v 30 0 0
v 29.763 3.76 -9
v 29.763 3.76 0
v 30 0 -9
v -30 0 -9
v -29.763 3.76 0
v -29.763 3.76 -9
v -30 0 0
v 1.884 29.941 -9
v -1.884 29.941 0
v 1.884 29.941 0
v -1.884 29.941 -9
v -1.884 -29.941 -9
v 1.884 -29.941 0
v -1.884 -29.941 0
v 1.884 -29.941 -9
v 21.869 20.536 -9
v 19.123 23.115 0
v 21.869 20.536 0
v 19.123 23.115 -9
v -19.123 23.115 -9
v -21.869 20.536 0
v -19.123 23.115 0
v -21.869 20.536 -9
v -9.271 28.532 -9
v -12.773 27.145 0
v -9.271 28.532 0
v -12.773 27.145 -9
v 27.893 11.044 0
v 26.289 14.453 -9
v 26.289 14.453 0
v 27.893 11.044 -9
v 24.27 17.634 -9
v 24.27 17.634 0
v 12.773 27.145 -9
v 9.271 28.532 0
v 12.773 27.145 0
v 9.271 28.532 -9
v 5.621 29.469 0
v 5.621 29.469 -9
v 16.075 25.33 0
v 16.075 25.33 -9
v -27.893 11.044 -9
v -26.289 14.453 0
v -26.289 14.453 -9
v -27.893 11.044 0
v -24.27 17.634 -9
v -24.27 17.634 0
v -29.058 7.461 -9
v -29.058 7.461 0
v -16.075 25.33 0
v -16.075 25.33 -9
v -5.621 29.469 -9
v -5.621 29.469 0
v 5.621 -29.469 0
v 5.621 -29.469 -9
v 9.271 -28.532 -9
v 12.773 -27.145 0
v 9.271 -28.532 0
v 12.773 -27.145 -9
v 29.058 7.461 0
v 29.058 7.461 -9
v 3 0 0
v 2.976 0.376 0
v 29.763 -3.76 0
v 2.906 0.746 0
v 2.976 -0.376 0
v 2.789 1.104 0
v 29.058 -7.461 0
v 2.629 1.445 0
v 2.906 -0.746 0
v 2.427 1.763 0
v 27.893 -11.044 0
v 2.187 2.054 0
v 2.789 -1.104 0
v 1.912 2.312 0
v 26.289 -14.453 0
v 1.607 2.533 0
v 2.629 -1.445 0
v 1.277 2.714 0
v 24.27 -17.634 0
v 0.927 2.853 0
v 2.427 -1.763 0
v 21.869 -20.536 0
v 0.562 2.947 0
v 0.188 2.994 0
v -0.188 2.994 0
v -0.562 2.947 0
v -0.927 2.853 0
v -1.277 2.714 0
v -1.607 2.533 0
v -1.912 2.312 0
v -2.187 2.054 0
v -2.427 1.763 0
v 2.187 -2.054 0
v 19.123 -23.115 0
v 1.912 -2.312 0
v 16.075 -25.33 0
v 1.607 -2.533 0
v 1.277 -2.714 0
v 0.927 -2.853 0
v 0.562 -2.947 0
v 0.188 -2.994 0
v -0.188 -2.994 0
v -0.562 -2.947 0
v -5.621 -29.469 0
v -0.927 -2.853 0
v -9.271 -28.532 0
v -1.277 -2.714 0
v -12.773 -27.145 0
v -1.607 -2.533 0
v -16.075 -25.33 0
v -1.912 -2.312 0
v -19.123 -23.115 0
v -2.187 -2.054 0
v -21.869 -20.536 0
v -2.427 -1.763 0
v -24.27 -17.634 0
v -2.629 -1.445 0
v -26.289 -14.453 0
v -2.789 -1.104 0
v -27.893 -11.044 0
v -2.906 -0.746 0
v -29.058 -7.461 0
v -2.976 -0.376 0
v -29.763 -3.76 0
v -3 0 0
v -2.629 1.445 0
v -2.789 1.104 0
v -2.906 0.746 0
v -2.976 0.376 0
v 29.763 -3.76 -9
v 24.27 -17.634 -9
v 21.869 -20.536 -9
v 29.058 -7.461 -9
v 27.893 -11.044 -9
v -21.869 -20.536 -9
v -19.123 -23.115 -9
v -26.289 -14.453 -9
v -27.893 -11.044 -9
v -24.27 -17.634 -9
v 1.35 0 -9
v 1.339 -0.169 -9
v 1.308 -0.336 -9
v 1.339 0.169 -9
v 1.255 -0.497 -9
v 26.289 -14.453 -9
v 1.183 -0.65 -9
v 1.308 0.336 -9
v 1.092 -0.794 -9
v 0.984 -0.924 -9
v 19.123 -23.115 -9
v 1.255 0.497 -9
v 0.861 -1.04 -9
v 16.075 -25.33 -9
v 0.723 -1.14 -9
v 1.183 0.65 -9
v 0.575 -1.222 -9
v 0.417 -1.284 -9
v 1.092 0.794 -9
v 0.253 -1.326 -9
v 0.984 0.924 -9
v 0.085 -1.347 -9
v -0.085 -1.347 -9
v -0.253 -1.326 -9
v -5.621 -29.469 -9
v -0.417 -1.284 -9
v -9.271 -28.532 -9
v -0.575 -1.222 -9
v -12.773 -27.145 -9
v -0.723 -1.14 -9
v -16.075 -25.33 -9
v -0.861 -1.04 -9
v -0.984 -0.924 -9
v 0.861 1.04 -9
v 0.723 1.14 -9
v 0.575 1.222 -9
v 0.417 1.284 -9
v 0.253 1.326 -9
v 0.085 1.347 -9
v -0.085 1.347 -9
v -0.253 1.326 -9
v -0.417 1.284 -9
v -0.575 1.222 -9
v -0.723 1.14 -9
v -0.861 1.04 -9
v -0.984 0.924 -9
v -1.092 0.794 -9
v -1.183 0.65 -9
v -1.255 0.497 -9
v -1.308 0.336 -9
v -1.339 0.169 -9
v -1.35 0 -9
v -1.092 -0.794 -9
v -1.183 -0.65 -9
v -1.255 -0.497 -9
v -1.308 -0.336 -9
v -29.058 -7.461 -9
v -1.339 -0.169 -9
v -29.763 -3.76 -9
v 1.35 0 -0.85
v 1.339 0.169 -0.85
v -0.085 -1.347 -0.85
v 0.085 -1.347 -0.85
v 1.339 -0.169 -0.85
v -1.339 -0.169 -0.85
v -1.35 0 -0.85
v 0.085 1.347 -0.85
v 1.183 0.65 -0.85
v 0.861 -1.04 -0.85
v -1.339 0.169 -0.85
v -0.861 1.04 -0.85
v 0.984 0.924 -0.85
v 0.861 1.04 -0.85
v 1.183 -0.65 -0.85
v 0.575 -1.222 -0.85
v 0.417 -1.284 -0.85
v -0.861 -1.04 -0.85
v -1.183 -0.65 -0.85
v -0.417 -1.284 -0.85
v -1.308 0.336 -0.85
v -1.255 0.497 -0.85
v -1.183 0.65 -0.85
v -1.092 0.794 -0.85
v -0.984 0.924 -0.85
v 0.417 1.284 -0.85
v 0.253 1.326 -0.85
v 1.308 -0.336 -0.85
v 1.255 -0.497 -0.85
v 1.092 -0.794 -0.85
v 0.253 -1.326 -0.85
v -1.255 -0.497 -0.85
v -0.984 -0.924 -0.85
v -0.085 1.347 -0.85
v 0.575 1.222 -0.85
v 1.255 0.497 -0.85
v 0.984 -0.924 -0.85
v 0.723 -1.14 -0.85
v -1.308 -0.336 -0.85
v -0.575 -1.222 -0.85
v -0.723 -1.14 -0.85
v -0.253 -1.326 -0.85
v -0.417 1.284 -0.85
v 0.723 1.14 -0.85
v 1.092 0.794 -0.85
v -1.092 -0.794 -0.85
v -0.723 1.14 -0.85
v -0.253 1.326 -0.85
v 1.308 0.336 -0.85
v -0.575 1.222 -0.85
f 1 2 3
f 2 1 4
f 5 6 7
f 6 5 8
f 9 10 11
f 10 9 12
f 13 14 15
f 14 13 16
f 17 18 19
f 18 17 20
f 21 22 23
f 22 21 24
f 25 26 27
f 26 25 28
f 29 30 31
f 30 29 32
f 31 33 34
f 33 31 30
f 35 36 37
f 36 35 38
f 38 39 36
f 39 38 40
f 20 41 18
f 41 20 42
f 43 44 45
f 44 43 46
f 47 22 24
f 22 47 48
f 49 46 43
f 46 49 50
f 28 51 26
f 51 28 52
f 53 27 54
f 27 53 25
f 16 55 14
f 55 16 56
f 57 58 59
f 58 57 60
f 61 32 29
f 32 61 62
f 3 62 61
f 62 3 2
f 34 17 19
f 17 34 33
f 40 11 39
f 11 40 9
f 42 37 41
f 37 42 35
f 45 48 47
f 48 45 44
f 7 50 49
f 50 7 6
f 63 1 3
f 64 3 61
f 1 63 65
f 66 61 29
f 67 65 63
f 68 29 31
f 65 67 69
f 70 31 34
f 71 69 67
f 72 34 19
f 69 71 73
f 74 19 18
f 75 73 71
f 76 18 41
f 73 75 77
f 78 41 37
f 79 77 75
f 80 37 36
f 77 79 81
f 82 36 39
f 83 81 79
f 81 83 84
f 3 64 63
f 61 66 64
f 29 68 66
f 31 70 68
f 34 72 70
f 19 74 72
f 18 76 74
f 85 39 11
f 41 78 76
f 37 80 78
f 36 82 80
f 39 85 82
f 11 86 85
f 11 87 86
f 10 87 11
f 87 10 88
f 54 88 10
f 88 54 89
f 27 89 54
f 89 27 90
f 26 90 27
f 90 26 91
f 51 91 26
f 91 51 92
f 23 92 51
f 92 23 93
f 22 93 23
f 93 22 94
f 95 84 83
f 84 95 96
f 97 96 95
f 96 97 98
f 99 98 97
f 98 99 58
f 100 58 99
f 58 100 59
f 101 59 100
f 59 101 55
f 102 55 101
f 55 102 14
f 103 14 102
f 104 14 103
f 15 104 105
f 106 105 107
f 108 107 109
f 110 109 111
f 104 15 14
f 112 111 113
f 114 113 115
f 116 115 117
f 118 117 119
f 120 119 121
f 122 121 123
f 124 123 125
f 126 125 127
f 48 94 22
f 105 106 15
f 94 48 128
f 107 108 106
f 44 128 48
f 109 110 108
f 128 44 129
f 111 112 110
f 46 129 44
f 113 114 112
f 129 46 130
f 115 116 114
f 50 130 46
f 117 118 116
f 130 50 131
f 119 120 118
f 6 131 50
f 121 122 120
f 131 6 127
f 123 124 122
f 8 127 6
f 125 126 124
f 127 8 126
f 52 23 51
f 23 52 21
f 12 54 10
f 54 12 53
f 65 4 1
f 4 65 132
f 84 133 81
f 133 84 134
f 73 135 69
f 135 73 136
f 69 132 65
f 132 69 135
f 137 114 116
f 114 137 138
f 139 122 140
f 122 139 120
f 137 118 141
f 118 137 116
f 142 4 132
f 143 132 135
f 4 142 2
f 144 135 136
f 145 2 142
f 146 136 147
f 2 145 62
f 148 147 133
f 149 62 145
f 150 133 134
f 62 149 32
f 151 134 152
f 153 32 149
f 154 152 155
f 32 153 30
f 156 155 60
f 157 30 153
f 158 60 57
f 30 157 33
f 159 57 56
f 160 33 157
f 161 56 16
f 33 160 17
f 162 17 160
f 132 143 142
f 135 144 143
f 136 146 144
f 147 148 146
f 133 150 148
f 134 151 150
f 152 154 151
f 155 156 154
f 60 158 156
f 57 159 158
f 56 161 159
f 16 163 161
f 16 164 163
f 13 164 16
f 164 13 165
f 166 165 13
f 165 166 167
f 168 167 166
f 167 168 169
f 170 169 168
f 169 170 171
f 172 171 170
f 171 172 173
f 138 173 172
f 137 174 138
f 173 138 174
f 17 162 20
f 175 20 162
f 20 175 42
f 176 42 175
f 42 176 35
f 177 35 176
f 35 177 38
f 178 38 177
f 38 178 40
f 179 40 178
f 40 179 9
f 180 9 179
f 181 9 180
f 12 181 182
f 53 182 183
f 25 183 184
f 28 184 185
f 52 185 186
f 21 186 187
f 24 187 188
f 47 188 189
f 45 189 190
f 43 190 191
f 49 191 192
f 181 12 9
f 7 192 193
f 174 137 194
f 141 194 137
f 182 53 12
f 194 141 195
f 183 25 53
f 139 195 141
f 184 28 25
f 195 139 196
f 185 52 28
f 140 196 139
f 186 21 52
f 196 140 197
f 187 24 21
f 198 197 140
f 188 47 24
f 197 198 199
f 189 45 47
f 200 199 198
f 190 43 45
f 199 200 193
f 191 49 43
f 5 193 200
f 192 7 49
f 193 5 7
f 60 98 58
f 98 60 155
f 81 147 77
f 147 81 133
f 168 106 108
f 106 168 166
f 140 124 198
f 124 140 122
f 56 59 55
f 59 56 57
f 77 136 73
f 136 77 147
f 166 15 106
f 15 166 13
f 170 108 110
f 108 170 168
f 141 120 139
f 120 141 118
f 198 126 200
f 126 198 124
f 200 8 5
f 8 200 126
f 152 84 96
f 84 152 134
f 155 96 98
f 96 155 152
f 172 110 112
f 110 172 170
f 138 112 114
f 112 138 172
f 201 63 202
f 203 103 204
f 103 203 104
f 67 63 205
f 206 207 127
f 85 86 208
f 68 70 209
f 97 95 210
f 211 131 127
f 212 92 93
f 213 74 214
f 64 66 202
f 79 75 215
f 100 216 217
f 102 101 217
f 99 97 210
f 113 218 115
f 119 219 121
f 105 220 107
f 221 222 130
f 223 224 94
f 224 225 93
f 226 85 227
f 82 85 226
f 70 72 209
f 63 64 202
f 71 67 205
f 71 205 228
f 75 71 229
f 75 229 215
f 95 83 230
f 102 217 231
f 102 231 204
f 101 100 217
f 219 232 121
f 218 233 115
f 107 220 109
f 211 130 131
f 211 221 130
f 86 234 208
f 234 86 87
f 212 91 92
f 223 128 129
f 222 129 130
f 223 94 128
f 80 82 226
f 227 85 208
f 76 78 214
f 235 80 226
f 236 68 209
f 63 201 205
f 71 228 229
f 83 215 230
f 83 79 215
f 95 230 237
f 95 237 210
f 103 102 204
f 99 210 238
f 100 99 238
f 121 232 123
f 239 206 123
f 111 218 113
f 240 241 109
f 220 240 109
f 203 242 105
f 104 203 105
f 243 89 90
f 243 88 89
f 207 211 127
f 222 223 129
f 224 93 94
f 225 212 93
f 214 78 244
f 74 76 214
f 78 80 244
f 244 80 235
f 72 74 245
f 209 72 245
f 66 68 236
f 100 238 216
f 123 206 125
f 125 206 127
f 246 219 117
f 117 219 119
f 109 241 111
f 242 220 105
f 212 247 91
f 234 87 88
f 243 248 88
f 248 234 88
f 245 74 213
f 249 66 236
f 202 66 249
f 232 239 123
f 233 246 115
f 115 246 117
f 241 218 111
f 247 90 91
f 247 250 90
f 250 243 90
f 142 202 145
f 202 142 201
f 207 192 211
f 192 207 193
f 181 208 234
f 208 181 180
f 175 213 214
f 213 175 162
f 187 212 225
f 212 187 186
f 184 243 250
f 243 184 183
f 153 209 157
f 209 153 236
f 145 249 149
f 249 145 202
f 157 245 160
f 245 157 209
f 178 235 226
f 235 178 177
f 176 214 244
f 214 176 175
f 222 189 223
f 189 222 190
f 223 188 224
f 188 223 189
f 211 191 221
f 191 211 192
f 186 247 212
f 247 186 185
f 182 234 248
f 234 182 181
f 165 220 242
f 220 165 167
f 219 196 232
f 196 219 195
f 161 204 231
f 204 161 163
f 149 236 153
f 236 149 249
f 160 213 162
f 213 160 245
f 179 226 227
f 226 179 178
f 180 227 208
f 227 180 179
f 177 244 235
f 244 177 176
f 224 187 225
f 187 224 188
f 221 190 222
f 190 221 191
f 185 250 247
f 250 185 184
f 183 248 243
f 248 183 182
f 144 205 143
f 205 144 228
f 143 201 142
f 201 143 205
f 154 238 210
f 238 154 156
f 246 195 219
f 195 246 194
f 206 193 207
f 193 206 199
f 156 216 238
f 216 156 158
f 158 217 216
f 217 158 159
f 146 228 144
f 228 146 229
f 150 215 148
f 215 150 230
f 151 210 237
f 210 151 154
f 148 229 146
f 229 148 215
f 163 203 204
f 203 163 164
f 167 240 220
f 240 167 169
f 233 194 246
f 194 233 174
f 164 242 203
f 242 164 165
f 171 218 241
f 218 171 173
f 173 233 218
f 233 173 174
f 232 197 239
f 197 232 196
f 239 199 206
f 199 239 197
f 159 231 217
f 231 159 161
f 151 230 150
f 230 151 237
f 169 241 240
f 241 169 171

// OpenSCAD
$fn = 50;


difference() {
	union() {
		translate(v = [0, 0, -9.0000000000]) {
			cylinder(h = 9, r = 30.0000000000);
		}
		translate(v = [0, 0, -9.0000000000]) {
			cylinder(h = 9, r = 2.8750000000);
		}
	}
	union() {
		translate(v = [0, 0, 0]) {
			rotate(a = [0, 0, 0]) {
				difference() {
					union() {
						#translate(v = [0, 0, -9.0000000000]) {
							cylinder(h = 9, r = 1.0000000000);
						}
						#translate(v = [0, 0, -0.8500000000]) {
							cylinder(h = 0.8500000000, r1 = 1.3500000000, r2 = 3.0000000000);
						}
						#translate(v = [0, 0, -9.0000000000]) {
							cylinder(h = 9, r = 1.3500000000);
						}
						#translate(v = [0, 0, -9.0000000000]) {
							cylinder(h = 9, r = 1.0000000000);
						}
					}
					union();
				}
			}
		}
	}
}
